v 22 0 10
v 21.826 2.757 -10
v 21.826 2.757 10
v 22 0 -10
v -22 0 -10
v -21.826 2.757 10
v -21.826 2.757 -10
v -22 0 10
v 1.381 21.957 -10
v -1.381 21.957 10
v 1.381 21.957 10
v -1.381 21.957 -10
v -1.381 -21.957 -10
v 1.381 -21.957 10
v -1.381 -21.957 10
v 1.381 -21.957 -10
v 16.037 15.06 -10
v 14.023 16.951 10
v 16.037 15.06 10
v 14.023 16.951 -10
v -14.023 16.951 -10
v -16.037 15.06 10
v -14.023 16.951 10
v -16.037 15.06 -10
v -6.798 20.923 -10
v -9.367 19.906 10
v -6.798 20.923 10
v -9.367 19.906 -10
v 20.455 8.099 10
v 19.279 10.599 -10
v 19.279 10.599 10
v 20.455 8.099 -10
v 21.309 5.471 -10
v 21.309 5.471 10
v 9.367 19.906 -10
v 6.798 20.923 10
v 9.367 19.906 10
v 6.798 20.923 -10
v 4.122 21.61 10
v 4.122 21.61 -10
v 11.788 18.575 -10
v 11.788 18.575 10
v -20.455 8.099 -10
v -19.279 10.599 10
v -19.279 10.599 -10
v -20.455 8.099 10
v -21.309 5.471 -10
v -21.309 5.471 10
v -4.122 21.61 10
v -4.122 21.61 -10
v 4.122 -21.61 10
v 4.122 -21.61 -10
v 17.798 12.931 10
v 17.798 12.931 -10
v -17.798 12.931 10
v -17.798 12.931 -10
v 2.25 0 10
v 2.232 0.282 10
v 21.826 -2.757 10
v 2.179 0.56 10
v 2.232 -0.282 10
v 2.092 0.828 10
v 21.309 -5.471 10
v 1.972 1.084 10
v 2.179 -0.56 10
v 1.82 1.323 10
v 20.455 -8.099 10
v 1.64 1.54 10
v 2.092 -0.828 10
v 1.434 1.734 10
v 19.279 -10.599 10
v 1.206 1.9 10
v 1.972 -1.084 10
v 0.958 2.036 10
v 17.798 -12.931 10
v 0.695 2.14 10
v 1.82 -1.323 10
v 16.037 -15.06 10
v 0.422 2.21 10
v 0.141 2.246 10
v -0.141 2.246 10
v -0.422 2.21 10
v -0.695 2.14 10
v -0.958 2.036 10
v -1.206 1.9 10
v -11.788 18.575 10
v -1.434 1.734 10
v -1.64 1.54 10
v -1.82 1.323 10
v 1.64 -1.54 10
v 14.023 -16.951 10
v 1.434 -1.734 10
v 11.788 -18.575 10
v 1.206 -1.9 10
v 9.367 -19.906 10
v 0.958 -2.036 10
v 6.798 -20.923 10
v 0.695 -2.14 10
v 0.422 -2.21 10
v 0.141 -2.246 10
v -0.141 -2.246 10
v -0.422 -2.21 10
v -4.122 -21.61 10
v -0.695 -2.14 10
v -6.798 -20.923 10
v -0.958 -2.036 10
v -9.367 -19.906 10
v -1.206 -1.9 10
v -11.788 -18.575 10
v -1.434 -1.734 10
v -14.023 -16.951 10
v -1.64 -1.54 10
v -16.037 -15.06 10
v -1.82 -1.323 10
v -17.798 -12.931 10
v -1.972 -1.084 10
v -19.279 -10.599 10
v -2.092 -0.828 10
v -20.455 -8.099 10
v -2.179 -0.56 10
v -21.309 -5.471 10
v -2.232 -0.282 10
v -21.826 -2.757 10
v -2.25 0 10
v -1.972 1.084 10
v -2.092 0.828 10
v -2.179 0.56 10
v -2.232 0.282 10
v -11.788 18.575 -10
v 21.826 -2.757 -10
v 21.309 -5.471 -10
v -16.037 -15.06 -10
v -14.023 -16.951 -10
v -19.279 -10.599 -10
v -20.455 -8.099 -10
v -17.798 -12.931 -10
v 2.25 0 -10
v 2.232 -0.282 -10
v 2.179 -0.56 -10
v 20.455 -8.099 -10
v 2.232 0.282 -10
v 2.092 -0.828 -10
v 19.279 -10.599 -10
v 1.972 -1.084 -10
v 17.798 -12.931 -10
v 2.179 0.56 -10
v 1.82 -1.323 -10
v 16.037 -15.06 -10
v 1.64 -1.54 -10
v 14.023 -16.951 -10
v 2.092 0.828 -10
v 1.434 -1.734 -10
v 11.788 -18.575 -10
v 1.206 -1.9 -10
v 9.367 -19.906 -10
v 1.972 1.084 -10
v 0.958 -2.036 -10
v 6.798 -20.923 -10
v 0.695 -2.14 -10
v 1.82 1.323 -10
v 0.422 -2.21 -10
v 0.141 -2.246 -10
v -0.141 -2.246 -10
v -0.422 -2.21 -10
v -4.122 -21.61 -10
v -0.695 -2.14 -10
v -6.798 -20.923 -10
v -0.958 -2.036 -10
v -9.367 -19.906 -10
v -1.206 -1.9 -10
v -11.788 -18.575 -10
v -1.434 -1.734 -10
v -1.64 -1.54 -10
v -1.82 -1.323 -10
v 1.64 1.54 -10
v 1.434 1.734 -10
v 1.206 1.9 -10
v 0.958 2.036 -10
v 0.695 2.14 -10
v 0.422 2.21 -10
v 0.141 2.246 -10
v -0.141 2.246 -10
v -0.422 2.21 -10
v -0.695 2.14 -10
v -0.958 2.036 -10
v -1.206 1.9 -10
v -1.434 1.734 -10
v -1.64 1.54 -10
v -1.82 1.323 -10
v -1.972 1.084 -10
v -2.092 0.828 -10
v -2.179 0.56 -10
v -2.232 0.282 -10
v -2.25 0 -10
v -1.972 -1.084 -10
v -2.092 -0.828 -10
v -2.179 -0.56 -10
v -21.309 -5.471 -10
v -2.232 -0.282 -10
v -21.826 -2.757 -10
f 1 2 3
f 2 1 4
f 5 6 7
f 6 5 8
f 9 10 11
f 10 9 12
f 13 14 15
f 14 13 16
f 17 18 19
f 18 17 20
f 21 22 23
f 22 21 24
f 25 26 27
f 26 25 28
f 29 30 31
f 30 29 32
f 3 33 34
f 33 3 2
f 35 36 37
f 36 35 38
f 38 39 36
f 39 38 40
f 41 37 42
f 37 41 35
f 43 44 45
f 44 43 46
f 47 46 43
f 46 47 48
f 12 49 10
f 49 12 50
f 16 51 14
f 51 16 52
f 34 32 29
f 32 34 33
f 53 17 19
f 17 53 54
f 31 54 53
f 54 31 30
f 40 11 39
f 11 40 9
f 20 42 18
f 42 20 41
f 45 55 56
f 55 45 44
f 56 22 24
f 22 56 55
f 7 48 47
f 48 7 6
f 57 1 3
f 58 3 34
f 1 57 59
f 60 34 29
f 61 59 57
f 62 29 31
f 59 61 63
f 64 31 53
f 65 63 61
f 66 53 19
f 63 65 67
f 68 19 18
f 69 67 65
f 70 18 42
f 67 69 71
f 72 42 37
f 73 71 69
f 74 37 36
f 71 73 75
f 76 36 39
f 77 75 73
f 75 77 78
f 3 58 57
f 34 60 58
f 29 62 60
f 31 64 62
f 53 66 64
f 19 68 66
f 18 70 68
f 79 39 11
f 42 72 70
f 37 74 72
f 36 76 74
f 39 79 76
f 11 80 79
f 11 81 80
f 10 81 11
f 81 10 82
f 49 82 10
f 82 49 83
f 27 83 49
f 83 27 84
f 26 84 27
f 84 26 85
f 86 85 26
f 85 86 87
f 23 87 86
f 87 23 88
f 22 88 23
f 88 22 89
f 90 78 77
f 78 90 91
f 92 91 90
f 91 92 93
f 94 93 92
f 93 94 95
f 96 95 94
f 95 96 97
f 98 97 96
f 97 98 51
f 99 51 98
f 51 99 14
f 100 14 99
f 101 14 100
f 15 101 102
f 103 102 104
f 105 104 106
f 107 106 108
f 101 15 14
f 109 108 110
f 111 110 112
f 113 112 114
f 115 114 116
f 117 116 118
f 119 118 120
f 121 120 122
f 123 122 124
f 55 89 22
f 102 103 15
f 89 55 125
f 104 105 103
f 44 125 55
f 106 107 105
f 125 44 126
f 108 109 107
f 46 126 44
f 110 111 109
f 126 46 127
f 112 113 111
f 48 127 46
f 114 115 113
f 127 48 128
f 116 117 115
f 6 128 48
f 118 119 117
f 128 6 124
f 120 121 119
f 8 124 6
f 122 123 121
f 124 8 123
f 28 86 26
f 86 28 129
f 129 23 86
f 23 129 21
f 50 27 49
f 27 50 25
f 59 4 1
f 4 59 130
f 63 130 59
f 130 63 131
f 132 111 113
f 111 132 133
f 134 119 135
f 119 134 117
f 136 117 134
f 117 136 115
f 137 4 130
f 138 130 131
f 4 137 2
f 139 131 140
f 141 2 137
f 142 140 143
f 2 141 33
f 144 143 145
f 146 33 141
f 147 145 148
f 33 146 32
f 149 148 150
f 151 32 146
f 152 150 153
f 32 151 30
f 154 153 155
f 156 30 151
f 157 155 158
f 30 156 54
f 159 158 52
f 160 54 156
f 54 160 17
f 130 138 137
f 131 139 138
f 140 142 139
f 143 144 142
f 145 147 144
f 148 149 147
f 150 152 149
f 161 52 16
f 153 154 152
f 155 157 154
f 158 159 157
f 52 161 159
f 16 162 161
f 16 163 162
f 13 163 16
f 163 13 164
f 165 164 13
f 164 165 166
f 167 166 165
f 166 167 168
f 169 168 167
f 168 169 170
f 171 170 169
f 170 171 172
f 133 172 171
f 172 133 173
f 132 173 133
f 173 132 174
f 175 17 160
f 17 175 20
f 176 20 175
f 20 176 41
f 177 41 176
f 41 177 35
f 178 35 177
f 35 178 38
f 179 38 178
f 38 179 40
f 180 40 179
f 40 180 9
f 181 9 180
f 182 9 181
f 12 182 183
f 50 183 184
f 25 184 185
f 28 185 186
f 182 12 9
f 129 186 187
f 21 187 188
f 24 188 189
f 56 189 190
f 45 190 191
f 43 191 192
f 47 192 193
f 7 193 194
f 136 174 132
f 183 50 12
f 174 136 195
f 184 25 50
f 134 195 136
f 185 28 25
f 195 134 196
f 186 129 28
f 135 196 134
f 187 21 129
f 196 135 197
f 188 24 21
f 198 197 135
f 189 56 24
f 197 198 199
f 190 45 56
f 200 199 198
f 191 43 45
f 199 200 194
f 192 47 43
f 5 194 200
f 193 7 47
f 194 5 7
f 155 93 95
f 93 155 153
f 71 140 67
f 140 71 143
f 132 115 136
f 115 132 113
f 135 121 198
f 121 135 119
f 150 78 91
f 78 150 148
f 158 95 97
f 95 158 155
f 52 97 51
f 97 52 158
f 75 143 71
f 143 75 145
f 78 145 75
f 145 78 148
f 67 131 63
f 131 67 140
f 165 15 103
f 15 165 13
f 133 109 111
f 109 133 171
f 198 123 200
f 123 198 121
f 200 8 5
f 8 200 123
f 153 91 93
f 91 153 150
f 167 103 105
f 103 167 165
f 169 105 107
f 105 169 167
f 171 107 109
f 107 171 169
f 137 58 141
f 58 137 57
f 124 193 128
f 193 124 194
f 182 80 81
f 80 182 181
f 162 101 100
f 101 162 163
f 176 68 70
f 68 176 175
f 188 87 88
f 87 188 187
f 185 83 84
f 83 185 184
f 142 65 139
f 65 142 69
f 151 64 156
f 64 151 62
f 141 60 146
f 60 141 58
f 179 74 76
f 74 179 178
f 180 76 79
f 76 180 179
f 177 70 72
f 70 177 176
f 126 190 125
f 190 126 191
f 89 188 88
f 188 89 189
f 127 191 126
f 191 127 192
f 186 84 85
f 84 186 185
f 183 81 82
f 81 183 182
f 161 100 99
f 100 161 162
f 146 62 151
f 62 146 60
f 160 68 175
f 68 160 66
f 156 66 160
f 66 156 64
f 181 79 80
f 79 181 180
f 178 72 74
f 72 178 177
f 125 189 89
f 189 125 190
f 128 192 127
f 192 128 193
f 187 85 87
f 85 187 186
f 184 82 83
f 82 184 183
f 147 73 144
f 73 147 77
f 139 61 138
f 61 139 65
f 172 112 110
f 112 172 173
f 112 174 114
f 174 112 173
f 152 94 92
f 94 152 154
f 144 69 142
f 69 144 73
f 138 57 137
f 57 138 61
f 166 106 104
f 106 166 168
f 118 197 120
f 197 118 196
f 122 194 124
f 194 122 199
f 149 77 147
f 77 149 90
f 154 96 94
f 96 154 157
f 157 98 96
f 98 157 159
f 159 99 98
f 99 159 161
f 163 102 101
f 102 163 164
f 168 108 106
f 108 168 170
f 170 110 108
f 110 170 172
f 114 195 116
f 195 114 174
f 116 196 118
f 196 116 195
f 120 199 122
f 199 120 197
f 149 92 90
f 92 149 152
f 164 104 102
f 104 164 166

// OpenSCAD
$fn = 50;


difference() {
	union() {
		translate(v = [0, 0, -10.0000000000]) {
			cylinder(h = 20, r = 22.0000000000);
		}
	}
	union() {
		translate(v = [0, 0, -100.0000000000]) {
			cylinder(h = 200, r = 2.2500000000);
		}
	}
}
